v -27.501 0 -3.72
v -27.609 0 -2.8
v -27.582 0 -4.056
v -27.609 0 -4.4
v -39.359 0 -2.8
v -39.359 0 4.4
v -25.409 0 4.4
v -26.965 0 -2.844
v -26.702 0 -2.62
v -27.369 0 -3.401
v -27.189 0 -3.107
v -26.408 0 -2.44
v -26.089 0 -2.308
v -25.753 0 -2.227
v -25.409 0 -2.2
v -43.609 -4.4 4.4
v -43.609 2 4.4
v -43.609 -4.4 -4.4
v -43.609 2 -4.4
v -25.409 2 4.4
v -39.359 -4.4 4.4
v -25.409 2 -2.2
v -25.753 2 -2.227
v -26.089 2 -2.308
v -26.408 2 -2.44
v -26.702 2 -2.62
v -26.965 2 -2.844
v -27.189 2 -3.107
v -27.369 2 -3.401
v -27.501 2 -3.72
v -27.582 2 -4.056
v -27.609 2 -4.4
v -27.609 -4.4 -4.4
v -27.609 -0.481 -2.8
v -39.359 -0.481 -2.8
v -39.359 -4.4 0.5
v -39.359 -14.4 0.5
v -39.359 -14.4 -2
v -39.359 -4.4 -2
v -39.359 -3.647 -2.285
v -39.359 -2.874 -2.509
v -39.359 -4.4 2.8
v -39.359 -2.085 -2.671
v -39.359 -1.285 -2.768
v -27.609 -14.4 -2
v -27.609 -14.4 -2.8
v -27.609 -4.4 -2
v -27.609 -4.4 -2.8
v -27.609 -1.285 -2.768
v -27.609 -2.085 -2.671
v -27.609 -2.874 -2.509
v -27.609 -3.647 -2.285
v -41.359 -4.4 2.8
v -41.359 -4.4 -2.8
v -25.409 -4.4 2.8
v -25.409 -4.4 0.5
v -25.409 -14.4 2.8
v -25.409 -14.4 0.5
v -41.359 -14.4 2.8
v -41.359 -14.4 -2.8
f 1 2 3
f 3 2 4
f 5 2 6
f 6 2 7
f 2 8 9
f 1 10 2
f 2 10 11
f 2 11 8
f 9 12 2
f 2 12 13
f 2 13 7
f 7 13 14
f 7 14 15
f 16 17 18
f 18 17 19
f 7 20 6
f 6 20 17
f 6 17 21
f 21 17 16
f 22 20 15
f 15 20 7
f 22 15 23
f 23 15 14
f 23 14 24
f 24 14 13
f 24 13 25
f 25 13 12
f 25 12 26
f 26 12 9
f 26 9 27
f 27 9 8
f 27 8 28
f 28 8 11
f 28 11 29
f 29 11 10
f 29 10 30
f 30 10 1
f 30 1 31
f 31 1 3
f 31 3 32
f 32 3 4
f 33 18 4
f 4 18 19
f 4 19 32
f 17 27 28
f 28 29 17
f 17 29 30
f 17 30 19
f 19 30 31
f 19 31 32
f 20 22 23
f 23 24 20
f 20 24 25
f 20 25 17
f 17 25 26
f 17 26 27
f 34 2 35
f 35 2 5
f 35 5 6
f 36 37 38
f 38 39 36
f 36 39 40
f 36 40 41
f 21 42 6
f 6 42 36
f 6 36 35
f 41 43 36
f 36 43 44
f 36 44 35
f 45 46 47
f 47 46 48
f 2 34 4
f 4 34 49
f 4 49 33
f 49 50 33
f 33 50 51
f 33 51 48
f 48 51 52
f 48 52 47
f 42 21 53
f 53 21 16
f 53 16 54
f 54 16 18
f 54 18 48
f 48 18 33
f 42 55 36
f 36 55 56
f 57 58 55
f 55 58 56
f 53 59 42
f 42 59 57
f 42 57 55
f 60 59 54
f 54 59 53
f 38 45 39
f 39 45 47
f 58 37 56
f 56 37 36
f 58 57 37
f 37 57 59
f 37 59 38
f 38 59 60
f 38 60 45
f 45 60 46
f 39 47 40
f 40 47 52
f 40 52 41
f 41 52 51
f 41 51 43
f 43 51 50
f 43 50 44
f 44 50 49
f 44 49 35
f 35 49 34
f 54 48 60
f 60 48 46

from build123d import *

# Parameters (mm, degrees)
BOSS_EXTRUDE1_DEPTH = 2
BOSS_EXTRUDE2_DEPTH = 4.4
BOSS_EXTRUDE9_DEPTH = 10
FILLET1_R           = 10
SKETCH6_W           = 13.75
SKETCH6_H           = 1
CUT_EXTRUDE2_DEPTH  = 10


with BuildPart() as part:
    # Sketch1 → Boss-Extrude1 (new body)
    with BuildSketch(Plane(origin=(0, 0, 0), x_dir=(1, 0, 0), z_dir=(0, 1, 0))):
        with BuildLine():
            Line((-43.608869745, 4.4), (-27.608869745, 4.4))
            ThreePointArc((-27.608869745, 4.4), (-26.964504664, 2.844365081), (-25.408869745, 2.2))
            Line((-25.408869745, 2.2), (-25.408869745, -4.4))
            Line((-25.408869745, -4.4), (-43.608869745, -4.4))
            Line((-43.608869745, -4.4), (-43.608869745, 4.4))
        make_face()
    extrude(amount=BOSS_EXTRUDE1_DEPTH)

    # Sketch2 → Boss-Extrude2 (add)
    with BuildSketch(Plane.XZ):
        Polygon((-39.358869745, -4.4), (-27.608869745, -4.4), (-27.608869745, -2.8), (-39.358869745, -2.8), (-39.358869745, 4.4), (-43.608869745, 4.4), (-43.608869745, -4.4), align=None)
    extrude(amount=BOSS_EXTRUDE2_DEPTH)

    # Sketch3 → Boss-Extrude9 (add)
    with BuildSketch(Plane.XZ.offset(4.4)):
        Polygon((-41.358869745, 2.8), (-25.408869745, 2.8), (-25.408869745, 0.5), (-39.358869745, 0.5), (-39.358869745, -2), (-27.608869745, -2), (-27.608869745, -2.8), (-27.608869745, -3.8), (-41.358869745, -3.8), (-41.358869745, -2.8), align=None)
    extrude(amount=BOSS_EXTRUDE9_DEPTH)

    # Fillet1
    # the kernel refuses this fillet: 10 mm, written as the material it adds along each edge
    with BuildSketch(Plane(origin=(-27.608869745, -4.4, -2.8), x_dir=(0, 1, 0), z_dir=(-1, 0, 0))) as fillet1_piece_1_section:
        with BuildLine():
            CenterArc((3.919183588, -10), FILLET1_R, 90, 23.073918066)
            Line((0, -0.8), (0, 0))
            Line((0, 0), (3.919183588, 0))
        make_face()
    fillet1_piece_1 = extrude(amount=21.547958971, mode=Mode.PRIVATE)
    fillet1_piece_1 = split(fillet1_piece_1, bisect_by=Plane(origin=(-41.358869745, -4.4, -2.8), z_dir=(1, 0, 0)), keep=Keep.TOP, mode=Mode.PRIVATE)
    add(fillet1_piece_1)

    # Sketch6 → Cut-Extrude2 (cut)
    with BuildSketch(Plane.XZ.offset(14.4)):
        with Locations((-34.483869745, -3.3)):
            Rectangle(SKETCH6_W, SKETCH6_H)
    extrude(amount=-CUT_EXTRUDE2_DEPTH, mode=Mode.SUBTRACT)


solid = part.part
